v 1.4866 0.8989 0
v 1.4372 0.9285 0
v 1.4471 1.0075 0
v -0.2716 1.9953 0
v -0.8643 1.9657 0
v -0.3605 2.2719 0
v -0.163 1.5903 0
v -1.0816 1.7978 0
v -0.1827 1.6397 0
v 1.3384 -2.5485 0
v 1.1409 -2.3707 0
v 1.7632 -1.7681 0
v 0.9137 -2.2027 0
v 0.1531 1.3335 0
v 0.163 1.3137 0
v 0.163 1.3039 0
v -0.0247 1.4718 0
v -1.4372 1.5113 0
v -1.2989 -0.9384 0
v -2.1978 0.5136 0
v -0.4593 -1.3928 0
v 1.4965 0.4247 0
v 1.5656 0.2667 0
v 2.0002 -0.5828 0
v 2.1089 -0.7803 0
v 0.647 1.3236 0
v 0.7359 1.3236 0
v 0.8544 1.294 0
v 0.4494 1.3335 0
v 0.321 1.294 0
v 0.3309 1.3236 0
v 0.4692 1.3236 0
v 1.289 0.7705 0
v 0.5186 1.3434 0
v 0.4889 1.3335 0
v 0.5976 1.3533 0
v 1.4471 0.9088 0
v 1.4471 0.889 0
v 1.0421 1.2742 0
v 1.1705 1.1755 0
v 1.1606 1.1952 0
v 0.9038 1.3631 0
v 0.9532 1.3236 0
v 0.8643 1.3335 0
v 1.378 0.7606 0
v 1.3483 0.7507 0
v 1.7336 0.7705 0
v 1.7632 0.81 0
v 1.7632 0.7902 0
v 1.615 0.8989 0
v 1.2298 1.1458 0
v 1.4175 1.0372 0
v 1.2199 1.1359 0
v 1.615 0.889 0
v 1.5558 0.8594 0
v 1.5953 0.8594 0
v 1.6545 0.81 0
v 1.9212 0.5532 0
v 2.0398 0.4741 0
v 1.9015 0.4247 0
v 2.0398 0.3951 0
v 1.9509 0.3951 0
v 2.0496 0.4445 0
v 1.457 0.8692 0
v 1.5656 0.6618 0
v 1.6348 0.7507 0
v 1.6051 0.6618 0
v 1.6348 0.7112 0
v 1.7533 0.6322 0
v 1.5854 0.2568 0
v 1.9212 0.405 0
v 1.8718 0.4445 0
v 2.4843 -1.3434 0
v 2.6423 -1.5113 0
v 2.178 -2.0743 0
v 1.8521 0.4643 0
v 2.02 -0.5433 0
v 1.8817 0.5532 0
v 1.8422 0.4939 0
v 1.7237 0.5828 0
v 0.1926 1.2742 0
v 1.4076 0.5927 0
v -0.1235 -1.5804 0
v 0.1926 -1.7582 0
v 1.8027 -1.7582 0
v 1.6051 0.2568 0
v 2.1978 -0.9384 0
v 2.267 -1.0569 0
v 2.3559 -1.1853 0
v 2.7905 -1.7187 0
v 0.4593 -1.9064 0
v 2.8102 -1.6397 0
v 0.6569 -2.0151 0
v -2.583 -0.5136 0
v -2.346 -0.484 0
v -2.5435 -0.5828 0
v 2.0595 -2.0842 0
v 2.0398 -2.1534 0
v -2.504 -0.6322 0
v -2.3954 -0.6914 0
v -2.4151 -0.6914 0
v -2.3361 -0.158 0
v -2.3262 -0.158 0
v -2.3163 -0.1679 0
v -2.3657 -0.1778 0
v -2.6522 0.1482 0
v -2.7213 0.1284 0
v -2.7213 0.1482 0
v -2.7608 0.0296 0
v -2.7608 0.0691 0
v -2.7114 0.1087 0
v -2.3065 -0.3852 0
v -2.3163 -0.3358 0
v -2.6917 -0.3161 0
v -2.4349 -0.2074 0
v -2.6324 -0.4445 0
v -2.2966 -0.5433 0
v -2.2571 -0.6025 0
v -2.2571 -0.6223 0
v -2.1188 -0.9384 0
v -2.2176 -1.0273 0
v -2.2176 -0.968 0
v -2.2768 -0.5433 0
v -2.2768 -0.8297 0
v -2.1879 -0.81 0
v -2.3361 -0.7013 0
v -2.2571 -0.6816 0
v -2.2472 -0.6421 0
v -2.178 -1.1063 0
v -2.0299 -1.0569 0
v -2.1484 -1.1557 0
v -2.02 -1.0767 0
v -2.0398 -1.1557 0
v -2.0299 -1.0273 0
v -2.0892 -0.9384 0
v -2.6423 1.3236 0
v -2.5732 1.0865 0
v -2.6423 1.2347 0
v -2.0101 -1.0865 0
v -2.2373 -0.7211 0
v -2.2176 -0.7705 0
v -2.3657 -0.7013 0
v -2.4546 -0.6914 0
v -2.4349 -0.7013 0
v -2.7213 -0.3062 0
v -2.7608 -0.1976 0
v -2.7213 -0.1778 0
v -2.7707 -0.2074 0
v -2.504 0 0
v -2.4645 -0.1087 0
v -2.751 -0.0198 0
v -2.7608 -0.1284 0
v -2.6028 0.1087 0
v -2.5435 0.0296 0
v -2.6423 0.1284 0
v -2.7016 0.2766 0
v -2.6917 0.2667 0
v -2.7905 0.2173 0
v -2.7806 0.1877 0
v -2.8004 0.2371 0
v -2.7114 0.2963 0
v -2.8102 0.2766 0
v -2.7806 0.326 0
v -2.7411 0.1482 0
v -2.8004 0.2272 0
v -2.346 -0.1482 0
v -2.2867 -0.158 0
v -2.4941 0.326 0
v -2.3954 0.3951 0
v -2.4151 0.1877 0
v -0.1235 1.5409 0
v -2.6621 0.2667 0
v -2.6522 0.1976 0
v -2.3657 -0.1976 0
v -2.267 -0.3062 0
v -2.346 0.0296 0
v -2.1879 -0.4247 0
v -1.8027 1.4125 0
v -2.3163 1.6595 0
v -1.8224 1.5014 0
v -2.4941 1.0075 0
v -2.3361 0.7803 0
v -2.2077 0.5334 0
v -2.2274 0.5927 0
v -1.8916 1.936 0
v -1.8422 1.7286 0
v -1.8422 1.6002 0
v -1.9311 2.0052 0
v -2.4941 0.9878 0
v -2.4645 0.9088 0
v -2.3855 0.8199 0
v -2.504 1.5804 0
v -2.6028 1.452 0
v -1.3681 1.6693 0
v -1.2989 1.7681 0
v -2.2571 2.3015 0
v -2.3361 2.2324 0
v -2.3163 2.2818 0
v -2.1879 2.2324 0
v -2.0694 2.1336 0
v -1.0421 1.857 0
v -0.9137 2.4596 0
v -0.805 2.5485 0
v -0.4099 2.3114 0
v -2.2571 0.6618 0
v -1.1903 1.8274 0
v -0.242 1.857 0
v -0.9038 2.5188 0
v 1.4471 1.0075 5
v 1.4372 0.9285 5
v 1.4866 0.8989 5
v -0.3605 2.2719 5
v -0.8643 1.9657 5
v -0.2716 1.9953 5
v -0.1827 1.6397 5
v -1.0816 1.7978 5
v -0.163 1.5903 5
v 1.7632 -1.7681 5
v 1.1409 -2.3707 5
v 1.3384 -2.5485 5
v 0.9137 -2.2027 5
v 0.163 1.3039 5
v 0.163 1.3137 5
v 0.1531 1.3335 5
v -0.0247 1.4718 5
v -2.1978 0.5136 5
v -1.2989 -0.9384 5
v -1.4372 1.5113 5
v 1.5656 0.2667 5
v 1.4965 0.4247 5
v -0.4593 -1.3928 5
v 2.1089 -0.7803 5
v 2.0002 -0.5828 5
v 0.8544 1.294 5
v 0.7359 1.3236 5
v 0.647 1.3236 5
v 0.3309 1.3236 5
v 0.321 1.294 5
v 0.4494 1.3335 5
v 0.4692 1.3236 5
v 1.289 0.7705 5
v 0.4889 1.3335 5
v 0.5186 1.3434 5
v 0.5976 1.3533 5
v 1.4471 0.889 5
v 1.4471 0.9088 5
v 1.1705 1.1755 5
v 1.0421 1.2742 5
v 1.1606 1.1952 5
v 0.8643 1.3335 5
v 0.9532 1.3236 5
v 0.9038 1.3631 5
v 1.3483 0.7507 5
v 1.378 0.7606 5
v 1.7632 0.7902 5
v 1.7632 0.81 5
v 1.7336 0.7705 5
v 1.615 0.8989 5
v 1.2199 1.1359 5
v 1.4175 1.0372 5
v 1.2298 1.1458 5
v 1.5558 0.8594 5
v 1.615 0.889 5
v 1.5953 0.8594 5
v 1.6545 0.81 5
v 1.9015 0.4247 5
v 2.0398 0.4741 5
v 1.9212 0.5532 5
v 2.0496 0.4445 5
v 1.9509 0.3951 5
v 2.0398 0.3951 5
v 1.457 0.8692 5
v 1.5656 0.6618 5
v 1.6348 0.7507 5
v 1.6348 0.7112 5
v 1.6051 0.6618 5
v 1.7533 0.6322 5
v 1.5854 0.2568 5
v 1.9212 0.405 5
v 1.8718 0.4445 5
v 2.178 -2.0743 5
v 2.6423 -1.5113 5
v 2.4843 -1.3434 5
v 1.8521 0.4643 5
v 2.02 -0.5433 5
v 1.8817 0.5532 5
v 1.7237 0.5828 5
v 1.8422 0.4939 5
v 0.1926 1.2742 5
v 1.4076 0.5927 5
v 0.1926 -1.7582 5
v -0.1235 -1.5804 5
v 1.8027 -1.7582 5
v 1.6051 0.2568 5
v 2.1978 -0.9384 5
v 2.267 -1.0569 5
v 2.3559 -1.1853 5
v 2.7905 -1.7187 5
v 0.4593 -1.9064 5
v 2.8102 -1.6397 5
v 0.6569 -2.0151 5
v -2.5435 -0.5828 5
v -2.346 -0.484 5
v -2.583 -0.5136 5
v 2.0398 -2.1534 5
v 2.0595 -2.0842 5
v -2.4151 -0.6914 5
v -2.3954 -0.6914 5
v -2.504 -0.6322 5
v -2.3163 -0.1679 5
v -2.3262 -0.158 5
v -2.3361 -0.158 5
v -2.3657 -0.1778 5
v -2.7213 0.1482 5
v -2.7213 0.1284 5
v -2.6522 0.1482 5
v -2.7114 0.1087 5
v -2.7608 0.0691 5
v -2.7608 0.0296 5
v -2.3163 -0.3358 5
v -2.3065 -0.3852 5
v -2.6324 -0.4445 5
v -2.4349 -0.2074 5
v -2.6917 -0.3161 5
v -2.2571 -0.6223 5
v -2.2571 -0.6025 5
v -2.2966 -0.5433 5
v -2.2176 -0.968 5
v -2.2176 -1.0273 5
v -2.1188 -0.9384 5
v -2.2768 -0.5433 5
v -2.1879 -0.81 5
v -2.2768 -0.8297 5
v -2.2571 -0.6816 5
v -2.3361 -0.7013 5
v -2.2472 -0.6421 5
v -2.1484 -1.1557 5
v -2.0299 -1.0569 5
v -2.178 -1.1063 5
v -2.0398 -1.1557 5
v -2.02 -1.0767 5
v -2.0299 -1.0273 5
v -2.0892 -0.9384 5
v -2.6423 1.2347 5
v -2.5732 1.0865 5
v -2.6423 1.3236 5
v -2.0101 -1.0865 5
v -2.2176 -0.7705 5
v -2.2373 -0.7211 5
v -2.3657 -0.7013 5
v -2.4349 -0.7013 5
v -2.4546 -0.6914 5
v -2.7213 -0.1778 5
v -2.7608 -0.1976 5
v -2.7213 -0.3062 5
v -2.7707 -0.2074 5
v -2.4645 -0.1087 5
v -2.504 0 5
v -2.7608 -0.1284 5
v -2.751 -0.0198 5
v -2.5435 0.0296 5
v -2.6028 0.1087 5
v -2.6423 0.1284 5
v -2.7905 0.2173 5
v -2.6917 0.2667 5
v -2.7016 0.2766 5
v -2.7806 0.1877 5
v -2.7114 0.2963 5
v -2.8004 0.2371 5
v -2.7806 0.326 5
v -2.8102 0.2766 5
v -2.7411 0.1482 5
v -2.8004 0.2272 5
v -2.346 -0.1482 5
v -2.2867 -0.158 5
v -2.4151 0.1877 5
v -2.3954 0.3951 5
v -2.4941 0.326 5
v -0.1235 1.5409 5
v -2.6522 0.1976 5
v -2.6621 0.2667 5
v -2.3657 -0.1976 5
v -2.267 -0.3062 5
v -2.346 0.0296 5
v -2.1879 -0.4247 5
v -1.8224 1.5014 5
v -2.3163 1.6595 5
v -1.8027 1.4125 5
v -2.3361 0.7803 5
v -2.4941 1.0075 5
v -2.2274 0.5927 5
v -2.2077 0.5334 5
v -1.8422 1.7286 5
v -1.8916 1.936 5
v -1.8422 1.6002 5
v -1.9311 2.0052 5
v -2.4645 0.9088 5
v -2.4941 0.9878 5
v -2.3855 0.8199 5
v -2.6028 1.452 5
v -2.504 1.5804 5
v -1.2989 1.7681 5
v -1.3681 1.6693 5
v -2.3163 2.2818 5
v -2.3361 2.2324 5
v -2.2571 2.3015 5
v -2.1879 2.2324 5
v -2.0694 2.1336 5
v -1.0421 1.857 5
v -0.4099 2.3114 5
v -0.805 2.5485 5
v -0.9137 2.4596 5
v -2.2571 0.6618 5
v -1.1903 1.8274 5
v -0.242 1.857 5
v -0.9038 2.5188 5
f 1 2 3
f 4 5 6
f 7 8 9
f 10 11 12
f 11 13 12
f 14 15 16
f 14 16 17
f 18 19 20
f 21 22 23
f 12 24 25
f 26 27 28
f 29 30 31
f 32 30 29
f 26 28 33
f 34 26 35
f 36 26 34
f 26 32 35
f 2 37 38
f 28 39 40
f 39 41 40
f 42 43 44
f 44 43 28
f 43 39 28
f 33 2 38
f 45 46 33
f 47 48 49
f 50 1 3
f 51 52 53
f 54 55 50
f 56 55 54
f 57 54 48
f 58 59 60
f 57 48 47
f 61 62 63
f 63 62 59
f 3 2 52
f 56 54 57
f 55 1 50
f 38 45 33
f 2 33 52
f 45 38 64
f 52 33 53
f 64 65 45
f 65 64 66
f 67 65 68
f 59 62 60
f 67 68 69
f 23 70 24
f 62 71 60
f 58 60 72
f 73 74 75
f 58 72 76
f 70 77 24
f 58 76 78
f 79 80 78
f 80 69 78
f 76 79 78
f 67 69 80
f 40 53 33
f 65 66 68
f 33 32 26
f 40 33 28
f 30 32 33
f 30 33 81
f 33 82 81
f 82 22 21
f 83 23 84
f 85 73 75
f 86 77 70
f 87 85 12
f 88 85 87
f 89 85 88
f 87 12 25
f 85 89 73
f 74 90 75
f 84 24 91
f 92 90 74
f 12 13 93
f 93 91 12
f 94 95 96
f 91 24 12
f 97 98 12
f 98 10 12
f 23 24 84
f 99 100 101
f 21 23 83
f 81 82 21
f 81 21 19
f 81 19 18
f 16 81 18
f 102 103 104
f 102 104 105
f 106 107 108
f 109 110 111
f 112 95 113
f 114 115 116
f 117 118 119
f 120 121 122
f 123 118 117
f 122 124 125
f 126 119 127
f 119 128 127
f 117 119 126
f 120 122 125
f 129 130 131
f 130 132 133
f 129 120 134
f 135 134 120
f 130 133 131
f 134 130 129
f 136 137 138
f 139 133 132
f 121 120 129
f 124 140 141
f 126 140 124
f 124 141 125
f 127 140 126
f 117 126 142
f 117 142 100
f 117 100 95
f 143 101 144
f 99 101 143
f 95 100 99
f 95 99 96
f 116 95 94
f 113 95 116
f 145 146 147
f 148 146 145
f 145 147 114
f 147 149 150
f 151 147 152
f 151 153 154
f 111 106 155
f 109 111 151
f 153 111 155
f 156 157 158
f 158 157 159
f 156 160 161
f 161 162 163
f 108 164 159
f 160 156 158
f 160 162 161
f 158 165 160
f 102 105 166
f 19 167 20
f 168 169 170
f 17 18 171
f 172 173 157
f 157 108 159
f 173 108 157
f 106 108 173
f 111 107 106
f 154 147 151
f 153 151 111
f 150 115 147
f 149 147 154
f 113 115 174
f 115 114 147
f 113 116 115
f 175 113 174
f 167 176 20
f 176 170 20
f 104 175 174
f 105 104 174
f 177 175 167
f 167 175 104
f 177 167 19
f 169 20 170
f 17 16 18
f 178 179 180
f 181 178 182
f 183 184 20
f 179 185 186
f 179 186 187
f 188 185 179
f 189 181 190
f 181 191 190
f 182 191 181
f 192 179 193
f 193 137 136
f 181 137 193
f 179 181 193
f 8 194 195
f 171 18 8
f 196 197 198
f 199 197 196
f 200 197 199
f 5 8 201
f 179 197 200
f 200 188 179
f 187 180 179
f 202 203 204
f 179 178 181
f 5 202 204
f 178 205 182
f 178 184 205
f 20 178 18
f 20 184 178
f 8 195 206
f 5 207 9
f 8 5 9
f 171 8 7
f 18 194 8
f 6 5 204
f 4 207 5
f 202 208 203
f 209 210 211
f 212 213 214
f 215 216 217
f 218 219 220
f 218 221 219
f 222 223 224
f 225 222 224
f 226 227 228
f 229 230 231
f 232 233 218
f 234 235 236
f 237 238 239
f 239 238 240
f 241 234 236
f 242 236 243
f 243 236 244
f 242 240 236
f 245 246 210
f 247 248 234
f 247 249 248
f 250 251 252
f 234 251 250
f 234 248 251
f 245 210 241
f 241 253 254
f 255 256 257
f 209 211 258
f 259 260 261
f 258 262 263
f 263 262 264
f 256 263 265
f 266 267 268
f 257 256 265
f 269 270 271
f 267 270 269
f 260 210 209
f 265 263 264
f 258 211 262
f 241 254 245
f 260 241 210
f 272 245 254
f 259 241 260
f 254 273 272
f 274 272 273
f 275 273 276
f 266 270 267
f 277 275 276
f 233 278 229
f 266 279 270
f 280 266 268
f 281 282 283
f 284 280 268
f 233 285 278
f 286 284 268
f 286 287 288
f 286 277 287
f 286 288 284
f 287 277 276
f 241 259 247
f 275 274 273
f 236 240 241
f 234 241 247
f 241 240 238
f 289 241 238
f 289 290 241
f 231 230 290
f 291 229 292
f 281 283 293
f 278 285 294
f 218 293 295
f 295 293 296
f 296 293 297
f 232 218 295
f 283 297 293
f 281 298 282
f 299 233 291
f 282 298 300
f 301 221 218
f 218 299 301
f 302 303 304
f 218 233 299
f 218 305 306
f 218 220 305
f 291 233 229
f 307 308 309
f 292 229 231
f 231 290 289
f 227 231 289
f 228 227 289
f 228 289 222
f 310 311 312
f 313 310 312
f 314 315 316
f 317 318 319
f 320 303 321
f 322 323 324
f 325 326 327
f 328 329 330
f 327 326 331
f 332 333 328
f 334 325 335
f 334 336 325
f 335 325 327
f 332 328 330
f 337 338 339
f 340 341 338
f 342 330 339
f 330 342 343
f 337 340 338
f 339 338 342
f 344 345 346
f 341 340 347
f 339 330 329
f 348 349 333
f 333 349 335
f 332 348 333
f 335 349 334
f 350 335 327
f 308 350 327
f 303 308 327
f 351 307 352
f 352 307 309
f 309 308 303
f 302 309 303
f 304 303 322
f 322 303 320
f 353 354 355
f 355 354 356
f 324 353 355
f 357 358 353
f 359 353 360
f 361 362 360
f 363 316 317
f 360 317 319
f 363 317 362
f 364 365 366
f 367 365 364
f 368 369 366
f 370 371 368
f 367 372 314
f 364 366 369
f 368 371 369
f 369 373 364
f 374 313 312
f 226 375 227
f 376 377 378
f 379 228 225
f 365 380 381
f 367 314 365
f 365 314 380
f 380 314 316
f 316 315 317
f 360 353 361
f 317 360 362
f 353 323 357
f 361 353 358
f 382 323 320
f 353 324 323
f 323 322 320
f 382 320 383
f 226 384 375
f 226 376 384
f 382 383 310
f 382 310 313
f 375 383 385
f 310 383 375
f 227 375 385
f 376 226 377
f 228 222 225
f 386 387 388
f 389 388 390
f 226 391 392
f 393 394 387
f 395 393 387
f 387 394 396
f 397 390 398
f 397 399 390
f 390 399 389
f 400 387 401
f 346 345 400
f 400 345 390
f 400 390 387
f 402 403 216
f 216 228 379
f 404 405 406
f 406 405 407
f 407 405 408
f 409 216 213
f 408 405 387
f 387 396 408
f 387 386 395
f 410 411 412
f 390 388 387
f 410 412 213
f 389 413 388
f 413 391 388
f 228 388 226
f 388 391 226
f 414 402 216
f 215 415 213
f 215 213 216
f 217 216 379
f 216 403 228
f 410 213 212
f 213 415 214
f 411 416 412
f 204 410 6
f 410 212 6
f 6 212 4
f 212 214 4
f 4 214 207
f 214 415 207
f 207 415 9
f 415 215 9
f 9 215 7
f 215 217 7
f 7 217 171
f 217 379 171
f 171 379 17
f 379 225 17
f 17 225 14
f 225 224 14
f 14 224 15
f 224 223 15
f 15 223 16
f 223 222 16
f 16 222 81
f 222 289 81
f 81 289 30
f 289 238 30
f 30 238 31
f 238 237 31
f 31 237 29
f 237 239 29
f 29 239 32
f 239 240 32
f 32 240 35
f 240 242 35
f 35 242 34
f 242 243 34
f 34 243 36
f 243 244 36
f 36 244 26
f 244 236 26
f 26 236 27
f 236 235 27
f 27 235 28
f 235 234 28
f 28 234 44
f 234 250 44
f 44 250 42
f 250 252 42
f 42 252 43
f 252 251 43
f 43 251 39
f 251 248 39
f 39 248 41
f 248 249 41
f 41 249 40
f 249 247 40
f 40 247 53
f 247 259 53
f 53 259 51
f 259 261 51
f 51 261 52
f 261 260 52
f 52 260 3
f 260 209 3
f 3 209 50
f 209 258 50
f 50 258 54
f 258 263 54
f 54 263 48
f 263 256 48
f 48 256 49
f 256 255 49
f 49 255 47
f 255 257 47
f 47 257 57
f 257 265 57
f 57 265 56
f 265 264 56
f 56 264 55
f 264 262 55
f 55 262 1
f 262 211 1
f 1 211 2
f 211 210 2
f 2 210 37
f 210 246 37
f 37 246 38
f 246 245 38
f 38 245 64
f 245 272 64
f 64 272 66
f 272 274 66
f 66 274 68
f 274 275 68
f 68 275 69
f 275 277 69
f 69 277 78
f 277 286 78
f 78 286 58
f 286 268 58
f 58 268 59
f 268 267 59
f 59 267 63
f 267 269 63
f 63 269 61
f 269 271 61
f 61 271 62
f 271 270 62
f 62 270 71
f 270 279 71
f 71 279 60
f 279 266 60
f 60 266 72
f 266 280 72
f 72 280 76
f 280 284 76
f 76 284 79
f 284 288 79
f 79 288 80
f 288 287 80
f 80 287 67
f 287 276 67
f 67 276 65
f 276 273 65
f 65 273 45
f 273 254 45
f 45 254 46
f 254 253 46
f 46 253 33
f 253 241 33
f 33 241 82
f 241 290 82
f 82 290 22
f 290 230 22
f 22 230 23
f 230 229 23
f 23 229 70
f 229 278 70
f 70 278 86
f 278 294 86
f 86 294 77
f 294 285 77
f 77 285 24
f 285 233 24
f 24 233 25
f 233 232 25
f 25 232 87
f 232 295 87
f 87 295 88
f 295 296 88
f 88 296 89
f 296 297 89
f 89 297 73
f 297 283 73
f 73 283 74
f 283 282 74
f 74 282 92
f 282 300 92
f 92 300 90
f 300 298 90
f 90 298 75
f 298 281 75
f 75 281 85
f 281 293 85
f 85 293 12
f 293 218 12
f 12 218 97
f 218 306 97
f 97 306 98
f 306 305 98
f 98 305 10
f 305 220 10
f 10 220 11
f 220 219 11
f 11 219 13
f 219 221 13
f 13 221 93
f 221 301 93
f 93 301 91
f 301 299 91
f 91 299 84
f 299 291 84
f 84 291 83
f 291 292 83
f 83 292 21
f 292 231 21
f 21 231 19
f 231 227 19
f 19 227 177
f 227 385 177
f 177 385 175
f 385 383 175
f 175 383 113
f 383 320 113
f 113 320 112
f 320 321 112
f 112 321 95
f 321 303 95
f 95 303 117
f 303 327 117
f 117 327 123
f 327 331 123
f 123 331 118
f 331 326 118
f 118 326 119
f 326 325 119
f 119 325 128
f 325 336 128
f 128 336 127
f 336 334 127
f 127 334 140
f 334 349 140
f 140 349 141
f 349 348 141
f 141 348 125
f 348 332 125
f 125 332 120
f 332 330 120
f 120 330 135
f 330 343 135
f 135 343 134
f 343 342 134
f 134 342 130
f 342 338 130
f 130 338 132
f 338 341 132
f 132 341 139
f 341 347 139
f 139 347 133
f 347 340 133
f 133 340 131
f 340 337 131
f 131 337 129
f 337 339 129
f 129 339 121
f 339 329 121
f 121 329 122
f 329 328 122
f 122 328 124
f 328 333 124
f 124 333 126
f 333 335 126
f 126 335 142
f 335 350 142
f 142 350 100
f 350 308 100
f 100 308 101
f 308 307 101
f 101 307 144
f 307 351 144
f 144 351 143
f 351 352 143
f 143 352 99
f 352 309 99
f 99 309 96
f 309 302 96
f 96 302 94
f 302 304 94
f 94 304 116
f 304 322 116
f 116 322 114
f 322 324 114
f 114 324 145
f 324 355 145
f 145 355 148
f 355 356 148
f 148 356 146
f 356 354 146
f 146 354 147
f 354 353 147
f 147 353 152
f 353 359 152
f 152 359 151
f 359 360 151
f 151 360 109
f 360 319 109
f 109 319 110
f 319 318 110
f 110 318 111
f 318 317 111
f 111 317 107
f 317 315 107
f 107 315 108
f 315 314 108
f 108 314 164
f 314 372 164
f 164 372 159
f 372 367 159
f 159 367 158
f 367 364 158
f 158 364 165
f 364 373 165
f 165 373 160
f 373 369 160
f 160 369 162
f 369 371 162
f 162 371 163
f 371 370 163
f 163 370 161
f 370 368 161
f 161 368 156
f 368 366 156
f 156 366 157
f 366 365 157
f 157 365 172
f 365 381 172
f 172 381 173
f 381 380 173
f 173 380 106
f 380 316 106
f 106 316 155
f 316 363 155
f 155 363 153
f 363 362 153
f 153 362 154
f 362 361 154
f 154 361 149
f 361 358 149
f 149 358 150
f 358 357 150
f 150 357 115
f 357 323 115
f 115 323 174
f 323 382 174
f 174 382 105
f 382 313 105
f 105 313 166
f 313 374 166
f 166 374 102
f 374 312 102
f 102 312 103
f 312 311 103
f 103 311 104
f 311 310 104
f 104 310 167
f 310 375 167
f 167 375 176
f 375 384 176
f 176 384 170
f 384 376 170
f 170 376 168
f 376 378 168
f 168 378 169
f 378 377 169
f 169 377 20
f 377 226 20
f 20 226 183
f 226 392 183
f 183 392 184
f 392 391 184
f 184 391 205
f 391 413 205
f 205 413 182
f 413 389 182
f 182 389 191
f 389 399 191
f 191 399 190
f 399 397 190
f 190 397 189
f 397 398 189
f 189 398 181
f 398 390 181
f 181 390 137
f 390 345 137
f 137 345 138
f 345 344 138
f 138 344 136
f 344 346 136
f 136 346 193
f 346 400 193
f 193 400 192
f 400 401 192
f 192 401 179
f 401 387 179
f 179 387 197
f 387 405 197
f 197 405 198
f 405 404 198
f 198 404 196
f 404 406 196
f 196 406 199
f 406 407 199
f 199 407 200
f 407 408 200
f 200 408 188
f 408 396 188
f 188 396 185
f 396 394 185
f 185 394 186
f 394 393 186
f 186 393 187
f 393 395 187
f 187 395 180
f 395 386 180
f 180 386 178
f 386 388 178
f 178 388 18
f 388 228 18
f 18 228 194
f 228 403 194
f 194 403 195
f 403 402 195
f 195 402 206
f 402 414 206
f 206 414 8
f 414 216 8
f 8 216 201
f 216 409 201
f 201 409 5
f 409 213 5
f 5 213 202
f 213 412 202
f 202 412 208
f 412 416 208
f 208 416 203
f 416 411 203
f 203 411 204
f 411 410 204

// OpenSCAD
// Module names are of the form poly_<inkscape-path-id>().  As a result,
// you can associate a polygon in this OpenSCAD program with the corresponding
// SVG element in the Inkscape document by looking for the XML element with
// the attribute id="inkscape-path-id".

// fudge value is used to ensure that subtracted solids are a tad taller
// in the z dimension than the polygon being subtracted from.  This helps
// keep the resulting .stl file manifold.
fudge = 0.1;

module poly_path4166(h)
{
  scale([25.4/90, -25.4/90, 1]) union()
  {
    linear_extrude(height=h)
      polygon([[-8.207500,-5.880000],[-8.277500,-7.910000],[-8.207500,-8.085000],[-7.997500,-8.155000],[-7.752500,-7.910000],[-7.332500,-7.560000],[-6.842500,-7.105000],[-6.702500,-6.860000],[-6.527500,-6.125000],[-6.527500,-5.670000],[-6.457500,-5.320000],[-6.387500,-5.005000],[-5.092500,-5.355000],[-4.847500,-5.915000],[-4.602500,-6.265000],[-4.217500,-6.475000],[-3.832500,-6.370000],[-3.692500,-6.580000],[-3.062500,-6.965000],[-3.237500,-8.715000],[-3.202500,-8.925000],[-2.852500,-9.030000],[-1.452500,-8.190000],[-1.277500,-8.050000],[-0.962500,-7.070000],[-0.857500,-6.580000],[-0.752500,-6.195000],[-0.647500,-5.810000],[-0.577500,-5.635000],[-0.437500,-5.460000],[-0.087500,-5.215000],[0.542500,-4.725000],[0.577500,-4.655000],[0.577500,-4.620000],[0.682500,-4.515000],[1.137500,-4.585000],[1.172500,-4.690000],[1.592500,-4.725000],[1.662500,-4.690000],[1.732500,-4.725000],[1.837500,-4.760000],[2.117500,-4.795000],[2.292500,-4.690000],[2.607500,-4.690000],[3.027500,-4.585000],[3.062500,-4.725000],[3.202500,-4.830000],[3.377500,-4.690000],[3.692500,-4.515000],[4.112500,-4.235000],[4.147500,-4.165000],[4.322500,-4.025000],[4.357500,-4.060000],[5.022500,-3.675000],[5.127500,-3.570000],[5.722500,-3.185000],[5.722500,-3.150000],[6.247500,-2.870000],[6.247500,-2.800000],[6.142500,-2.730000],[5.862500,-2.870000],[5.652500,-3.045000],[5.512500,-3.045000],[5.267500,-3.185000],[5.092500,-3.290000],[5.127500,-3.220000],[5.127500,-3.150000],[5.162500,-3.080000],[5.792500,-2.660000],[5.792500,-2.625000],[5.792500,-2.520000],[6.212500,-2.240000],[6.667500,-1.960000],[6.807500,-1.960000],[7.227500,-1.680000],[7.262500,-1.575000],[7.227500,-1.400000],[6.912500,-1.400000],[6.807500,-1.435000],[6.737500,-1.505000],[6.632500,-1.575000],[6.562500,-1.645000],[6.527500,-1.750000],[6.387500,-1.855000],[6.107500,-2.065000],[5.687500,-2.345000],[5.547500,-2.345000],[4.882500,-2.695000],[4.777500,-2.660000],[4.567500,-2.730000],[4.987500,-2.100000],[5.302500,-1.505000],[5.547500,-0.945000],[5.617500,-0.910000],[5.687500,-0.910000],[7.157500,1.925000],[7.087500,2.065000],[7.472500,2.765000],[7.787500,3.325000],[8.032500,3.745000],[8.347500,4.200000],[8.802500,4.760000],[9.362500,5.355000],[9.957500,5.810000],[9.887500,6.090000],[7.717500,7.350000],[6.387500,6.230000],[6.247500,6.265000],[7.297500,7.385000],[7.227500,7.630000],[4.742500,9.030000],[4.042500,8.400000],[3.237500,7.805000],[2.327500,7.140000],[1.627500,6.755000],[0.682500,6.230000],[-0.437500,5.600000],[-1.627500,4.935000],[-4.602500,3.325000],[-7.752500,1.505000],[-8.032500,1.085000],[-8.207500,1.190000],[-8.172500,1.365000],[-8.312500,1.715000],[-8.137500,1.925000],[-8.067500,1.925000],[-7.997500,2.135000],[-7.997500,2.205000],[-7.962500,2.275000],[-7.997500,2.415000],[-7.927500,2.555000],[-7.857500,2.730000],[-7.752500,2.870000],[-7.507500,3.325000],[-7.402500,3.325000],[-7.192500,3.640000],[-7.192500,3.745000],[-7.157500,3.815000],[-7.122500,3.850000],[-7.227500,4.095000],[-7.612500,4.095000],[-7.717500,3.920000],[-7.787500,3.780000],[-7.857500,3.640000],[-7.857500,3.535000],[-7.857500,3.430000],[-8.067500,2.940000],[-8.277500,2.485000],[-8.382500,2.485000],[-8.487500,2.450000],[-8.557500,2.450000],[-8.627500,2.485000],[-8.697500,2.450000],[-8.872500,2.240000],[-9.012500,2.065000],[-9.152500,1.820000],[-9.327500,1.575000],[-9.537500,1.120000],[-9.642500,1.085000],[-9.817500,0.735000],[-9.782500,0.700000],[-9.712500,0.665000],[-9.642500,0.630000],[-9.782500,0.455000],[-9.747500,0.070000],[-9.782500,-0.105000],[-9.782500,-0.245000],[-9.607500,-0.385000],[-9.642500,-0.455000],[-9.642500,-0.525000],[-9.712500,-0.525000],[-9.852500,-0.665000],[-9.887500,-0.770000],[-9.922500,-0.805000],[-9.922500,-0.840000],[-9.957500,-0.980000],[-9.852500,-1.155000],[-9.607500,-1.050000],[-9.572500,-0.980000],[-9.537500,-0.945000],[-9.432500,-0.945000],[-9.397500,-0.700000],[-9.397500,-0.630000],[-9.397500,-0.525000],[-9.362500,-0.455000],[-9.222500,-0.385000],[-9.012500,-0.105000],[-8.872500,0.000000],[-8.732500,0.385000],[-8.627500,0.735000],[-8.382500,0.700000],[-8.382500,0.630000],[-8.312500,0.525000],[-8.277500,0.560000],[-8.242500,0.560000],[-8.207500,0.595000],[-8.102500,0.560000],[-8.312500,-0.105000],[-8.557500,-0.665000],[-8.837500,-1.155000],[-8.487500,-1.400000],[-7.787500,-1.820000],[-7.822500,-1.890000],[-7.892500,-2.100000],[-7.997500,-2.345000],[-8.277500,-2.765000],[-8.452500,-2.905000],[-8.732500,-3.220000],[-8.837500,-3.500000],[-8.837500,-3.570000],[-9.117500,-3.850000],[-9.362500,-4.375000],[-9.362500,-4.690000],[-9.222500,-5.145000],[-8.872500,-5.600000],[-8.207500,-5.880000]]);
  }
}

poly_path4166(5);
